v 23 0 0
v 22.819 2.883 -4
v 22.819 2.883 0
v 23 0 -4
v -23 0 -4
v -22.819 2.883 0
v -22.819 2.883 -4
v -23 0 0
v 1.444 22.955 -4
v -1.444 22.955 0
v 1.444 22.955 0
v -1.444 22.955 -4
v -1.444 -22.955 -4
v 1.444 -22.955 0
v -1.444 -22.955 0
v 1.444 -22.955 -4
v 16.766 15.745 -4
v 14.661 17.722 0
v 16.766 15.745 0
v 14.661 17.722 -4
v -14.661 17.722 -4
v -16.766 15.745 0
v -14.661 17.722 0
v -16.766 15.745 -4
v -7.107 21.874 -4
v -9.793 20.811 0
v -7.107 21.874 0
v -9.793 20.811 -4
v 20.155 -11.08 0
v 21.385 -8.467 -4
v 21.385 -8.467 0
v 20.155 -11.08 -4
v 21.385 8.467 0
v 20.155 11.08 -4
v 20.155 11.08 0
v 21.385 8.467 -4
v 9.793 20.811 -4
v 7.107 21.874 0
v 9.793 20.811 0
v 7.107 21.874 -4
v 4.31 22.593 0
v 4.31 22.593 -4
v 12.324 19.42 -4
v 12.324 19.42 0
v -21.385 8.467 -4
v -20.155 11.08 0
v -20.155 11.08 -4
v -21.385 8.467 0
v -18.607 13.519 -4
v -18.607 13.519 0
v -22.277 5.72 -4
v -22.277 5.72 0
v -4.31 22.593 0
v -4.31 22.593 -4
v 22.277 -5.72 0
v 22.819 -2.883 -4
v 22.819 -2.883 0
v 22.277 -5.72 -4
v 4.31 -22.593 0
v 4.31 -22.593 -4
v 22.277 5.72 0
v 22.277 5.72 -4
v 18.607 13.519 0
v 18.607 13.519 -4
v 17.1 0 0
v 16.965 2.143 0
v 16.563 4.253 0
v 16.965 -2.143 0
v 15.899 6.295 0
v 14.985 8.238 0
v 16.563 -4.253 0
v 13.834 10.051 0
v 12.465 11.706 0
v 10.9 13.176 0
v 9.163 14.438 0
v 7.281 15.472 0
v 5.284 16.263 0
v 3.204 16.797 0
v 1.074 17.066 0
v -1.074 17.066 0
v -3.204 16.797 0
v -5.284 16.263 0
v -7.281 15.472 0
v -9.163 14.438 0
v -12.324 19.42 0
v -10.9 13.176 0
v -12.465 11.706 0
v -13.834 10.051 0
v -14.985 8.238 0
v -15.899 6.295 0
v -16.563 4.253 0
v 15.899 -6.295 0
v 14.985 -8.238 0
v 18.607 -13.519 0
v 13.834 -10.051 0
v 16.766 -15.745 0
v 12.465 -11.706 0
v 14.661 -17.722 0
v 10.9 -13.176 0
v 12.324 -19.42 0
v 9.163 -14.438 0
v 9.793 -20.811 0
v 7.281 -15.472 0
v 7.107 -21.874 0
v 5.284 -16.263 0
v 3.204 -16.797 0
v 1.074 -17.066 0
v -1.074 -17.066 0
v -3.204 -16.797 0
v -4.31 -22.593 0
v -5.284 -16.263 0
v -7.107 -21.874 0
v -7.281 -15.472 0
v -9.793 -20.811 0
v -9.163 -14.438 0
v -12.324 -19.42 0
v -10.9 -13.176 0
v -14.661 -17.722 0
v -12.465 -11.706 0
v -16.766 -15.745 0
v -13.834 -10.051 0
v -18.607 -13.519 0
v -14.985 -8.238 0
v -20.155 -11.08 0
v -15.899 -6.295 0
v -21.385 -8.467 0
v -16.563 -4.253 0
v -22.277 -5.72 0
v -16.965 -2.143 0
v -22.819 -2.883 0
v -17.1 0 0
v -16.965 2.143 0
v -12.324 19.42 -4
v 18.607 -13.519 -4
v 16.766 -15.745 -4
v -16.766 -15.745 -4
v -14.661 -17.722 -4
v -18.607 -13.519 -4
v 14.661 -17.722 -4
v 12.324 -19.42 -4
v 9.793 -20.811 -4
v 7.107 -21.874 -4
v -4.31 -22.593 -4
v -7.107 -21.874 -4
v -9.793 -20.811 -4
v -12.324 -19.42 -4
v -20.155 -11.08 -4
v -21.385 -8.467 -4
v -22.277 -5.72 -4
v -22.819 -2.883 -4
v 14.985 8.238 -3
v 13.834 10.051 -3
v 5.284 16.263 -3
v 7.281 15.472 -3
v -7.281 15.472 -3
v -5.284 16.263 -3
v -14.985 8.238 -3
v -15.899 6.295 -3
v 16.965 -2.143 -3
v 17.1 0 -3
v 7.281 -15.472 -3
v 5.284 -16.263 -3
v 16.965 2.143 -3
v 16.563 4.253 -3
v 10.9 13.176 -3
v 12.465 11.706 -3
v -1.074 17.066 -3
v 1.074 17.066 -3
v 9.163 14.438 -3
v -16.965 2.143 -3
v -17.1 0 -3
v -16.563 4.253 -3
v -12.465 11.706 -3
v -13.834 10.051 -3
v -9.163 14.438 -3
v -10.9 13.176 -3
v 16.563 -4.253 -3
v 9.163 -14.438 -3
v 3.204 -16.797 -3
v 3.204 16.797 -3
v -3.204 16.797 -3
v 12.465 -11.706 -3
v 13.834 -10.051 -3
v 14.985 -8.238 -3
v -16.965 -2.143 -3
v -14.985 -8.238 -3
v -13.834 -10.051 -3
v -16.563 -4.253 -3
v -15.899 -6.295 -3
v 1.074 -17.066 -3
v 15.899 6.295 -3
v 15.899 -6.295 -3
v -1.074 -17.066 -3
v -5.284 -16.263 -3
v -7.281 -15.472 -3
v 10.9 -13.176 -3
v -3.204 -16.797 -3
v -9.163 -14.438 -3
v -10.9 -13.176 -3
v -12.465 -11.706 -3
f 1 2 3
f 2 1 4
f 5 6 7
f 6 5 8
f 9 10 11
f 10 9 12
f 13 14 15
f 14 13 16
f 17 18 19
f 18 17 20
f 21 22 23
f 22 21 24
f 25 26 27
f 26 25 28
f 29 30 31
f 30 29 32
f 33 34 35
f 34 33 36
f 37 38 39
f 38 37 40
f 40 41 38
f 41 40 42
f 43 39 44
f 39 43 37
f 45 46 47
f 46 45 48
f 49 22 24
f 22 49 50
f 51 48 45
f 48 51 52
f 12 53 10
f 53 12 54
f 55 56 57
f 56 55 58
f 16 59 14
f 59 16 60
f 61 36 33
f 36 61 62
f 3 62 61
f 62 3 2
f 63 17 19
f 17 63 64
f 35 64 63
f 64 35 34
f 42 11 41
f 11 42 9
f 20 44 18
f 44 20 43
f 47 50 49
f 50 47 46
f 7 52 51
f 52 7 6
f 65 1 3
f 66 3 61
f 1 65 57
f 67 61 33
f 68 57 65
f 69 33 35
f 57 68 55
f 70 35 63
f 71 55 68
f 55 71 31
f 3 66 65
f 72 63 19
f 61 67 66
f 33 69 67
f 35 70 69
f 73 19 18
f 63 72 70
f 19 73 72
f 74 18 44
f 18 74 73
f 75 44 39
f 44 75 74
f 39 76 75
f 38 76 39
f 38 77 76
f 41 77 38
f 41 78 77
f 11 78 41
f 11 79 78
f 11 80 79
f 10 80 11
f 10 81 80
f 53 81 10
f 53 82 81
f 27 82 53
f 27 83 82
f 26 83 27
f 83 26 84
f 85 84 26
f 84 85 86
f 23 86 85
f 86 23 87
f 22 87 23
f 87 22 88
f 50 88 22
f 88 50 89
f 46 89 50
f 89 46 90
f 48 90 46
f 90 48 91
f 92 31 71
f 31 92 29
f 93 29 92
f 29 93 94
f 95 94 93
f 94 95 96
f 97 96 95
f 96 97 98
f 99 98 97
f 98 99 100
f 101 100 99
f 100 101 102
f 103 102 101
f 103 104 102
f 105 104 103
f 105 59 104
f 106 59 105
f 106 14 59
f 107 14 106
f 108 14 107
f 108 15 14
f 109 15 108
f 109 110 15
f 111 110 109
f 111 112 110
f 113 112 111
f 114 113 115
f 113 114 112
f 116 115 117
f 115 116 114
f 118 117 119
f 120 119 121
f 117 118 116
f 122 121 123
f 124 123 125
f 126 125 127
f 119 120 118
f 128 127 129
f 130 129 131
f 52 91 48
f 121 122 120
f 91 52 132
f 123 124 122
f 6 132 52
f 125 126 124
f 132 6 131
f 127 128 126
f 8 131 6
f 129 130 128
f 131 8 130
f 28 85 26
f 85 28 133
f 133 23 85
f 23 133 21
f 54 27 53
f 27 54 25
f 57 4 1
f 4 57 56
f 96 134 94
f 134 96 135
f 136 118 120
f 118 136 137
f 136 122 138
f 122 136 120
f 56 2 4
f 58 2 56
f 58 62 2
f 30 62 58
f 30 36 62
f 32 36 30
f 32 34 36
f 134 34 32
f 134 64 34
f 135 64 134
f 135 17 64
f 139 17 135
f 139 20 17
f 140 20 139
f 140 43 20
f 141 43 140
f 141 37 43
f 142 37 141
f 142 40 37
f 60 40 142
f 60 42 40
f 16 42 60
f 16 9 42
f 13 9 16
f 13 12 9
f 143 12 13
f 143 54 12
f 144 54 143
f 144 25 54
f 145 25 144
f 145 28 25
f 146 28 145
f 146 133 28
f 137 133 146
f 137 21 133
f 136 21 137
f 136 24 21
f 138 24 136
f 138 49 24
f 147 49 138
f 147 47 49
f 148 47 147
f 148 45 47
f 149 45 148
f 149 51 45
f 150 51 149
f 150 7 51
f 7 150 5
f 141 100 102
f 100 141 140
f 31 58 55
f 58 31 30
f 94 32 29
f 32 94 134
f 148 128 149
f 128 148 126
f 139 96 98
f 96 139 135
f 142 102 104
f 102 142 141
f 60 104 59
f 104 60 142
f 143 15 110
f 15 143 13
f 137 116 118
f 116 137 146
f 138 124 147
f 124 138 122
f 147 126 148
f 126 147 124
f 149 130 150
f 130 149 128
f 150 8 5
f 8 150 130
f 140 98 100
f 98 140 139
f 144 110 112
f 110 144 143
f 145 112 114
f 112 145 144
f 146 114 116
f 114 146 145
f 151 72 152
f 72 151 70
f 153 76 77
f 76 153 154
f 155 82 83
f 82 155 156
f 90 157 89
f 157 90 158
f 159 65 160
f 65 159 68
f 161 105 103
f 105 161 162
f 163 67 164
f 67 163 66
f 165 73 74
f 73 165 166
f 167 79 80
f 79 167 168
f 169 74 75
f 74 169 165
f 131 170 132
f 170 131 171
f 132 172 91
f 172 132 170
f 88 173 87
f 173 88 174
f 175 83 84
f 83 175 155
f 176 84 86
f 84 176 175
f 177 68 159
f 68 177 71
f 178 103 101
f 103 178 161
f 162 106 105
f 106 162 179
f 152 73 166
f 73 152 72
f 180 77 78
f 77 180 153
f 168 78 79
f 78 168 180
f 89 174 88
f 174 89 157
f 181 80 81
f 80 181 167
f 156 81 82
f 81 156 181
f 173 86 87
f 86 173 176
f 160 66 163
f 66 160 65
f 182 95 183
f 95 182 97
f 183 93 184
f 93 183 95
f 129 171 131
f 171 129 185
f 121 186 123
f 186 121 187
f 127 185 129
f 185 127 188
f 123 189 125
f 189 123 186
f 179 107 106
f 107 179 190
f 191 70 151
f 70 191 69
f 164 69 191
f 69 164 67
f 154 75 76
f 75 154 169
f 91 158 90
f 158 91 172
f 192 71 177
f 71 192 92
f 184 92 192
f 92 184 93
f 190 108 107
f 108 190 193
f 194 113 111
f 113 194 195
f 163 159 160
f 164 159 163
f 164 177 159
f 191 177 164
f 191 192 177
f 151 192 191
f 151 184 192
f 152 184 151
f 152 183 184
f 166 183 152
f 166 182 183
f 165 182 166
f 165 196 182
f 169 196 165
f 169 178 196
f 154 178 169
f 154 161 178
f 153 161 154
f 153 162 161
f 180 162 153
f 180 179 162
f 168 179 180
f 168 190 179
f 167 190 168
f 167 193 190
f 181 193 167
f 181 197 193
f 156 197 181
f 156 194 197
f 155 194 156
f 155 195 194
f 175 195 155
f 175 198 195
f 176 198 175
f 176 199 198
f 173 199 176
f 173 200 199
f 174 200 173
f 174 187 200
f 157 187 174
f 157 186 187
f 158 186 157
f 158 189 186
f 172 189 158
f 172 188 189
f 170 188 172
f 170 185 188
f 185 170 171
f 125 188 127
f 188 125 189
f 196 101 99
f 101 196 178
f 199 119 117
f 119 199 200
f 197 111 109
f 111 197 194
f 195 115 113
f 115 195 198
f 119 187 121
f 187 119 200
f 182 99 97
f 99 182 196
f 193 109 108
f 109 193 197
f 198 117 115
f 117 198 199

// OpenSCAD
$fn = 50;


difference() {
	union() {
		translate(v = [0, 0, -4.0000000000]) {
			cylinder(h = 4, r = 23.0000000000);
		}
	}
	union() {
		#translate(v = [0, 0, -3.0000000000]) {
			cylinder(h = 3, r = 17.1000000000);
		}
	}
}
